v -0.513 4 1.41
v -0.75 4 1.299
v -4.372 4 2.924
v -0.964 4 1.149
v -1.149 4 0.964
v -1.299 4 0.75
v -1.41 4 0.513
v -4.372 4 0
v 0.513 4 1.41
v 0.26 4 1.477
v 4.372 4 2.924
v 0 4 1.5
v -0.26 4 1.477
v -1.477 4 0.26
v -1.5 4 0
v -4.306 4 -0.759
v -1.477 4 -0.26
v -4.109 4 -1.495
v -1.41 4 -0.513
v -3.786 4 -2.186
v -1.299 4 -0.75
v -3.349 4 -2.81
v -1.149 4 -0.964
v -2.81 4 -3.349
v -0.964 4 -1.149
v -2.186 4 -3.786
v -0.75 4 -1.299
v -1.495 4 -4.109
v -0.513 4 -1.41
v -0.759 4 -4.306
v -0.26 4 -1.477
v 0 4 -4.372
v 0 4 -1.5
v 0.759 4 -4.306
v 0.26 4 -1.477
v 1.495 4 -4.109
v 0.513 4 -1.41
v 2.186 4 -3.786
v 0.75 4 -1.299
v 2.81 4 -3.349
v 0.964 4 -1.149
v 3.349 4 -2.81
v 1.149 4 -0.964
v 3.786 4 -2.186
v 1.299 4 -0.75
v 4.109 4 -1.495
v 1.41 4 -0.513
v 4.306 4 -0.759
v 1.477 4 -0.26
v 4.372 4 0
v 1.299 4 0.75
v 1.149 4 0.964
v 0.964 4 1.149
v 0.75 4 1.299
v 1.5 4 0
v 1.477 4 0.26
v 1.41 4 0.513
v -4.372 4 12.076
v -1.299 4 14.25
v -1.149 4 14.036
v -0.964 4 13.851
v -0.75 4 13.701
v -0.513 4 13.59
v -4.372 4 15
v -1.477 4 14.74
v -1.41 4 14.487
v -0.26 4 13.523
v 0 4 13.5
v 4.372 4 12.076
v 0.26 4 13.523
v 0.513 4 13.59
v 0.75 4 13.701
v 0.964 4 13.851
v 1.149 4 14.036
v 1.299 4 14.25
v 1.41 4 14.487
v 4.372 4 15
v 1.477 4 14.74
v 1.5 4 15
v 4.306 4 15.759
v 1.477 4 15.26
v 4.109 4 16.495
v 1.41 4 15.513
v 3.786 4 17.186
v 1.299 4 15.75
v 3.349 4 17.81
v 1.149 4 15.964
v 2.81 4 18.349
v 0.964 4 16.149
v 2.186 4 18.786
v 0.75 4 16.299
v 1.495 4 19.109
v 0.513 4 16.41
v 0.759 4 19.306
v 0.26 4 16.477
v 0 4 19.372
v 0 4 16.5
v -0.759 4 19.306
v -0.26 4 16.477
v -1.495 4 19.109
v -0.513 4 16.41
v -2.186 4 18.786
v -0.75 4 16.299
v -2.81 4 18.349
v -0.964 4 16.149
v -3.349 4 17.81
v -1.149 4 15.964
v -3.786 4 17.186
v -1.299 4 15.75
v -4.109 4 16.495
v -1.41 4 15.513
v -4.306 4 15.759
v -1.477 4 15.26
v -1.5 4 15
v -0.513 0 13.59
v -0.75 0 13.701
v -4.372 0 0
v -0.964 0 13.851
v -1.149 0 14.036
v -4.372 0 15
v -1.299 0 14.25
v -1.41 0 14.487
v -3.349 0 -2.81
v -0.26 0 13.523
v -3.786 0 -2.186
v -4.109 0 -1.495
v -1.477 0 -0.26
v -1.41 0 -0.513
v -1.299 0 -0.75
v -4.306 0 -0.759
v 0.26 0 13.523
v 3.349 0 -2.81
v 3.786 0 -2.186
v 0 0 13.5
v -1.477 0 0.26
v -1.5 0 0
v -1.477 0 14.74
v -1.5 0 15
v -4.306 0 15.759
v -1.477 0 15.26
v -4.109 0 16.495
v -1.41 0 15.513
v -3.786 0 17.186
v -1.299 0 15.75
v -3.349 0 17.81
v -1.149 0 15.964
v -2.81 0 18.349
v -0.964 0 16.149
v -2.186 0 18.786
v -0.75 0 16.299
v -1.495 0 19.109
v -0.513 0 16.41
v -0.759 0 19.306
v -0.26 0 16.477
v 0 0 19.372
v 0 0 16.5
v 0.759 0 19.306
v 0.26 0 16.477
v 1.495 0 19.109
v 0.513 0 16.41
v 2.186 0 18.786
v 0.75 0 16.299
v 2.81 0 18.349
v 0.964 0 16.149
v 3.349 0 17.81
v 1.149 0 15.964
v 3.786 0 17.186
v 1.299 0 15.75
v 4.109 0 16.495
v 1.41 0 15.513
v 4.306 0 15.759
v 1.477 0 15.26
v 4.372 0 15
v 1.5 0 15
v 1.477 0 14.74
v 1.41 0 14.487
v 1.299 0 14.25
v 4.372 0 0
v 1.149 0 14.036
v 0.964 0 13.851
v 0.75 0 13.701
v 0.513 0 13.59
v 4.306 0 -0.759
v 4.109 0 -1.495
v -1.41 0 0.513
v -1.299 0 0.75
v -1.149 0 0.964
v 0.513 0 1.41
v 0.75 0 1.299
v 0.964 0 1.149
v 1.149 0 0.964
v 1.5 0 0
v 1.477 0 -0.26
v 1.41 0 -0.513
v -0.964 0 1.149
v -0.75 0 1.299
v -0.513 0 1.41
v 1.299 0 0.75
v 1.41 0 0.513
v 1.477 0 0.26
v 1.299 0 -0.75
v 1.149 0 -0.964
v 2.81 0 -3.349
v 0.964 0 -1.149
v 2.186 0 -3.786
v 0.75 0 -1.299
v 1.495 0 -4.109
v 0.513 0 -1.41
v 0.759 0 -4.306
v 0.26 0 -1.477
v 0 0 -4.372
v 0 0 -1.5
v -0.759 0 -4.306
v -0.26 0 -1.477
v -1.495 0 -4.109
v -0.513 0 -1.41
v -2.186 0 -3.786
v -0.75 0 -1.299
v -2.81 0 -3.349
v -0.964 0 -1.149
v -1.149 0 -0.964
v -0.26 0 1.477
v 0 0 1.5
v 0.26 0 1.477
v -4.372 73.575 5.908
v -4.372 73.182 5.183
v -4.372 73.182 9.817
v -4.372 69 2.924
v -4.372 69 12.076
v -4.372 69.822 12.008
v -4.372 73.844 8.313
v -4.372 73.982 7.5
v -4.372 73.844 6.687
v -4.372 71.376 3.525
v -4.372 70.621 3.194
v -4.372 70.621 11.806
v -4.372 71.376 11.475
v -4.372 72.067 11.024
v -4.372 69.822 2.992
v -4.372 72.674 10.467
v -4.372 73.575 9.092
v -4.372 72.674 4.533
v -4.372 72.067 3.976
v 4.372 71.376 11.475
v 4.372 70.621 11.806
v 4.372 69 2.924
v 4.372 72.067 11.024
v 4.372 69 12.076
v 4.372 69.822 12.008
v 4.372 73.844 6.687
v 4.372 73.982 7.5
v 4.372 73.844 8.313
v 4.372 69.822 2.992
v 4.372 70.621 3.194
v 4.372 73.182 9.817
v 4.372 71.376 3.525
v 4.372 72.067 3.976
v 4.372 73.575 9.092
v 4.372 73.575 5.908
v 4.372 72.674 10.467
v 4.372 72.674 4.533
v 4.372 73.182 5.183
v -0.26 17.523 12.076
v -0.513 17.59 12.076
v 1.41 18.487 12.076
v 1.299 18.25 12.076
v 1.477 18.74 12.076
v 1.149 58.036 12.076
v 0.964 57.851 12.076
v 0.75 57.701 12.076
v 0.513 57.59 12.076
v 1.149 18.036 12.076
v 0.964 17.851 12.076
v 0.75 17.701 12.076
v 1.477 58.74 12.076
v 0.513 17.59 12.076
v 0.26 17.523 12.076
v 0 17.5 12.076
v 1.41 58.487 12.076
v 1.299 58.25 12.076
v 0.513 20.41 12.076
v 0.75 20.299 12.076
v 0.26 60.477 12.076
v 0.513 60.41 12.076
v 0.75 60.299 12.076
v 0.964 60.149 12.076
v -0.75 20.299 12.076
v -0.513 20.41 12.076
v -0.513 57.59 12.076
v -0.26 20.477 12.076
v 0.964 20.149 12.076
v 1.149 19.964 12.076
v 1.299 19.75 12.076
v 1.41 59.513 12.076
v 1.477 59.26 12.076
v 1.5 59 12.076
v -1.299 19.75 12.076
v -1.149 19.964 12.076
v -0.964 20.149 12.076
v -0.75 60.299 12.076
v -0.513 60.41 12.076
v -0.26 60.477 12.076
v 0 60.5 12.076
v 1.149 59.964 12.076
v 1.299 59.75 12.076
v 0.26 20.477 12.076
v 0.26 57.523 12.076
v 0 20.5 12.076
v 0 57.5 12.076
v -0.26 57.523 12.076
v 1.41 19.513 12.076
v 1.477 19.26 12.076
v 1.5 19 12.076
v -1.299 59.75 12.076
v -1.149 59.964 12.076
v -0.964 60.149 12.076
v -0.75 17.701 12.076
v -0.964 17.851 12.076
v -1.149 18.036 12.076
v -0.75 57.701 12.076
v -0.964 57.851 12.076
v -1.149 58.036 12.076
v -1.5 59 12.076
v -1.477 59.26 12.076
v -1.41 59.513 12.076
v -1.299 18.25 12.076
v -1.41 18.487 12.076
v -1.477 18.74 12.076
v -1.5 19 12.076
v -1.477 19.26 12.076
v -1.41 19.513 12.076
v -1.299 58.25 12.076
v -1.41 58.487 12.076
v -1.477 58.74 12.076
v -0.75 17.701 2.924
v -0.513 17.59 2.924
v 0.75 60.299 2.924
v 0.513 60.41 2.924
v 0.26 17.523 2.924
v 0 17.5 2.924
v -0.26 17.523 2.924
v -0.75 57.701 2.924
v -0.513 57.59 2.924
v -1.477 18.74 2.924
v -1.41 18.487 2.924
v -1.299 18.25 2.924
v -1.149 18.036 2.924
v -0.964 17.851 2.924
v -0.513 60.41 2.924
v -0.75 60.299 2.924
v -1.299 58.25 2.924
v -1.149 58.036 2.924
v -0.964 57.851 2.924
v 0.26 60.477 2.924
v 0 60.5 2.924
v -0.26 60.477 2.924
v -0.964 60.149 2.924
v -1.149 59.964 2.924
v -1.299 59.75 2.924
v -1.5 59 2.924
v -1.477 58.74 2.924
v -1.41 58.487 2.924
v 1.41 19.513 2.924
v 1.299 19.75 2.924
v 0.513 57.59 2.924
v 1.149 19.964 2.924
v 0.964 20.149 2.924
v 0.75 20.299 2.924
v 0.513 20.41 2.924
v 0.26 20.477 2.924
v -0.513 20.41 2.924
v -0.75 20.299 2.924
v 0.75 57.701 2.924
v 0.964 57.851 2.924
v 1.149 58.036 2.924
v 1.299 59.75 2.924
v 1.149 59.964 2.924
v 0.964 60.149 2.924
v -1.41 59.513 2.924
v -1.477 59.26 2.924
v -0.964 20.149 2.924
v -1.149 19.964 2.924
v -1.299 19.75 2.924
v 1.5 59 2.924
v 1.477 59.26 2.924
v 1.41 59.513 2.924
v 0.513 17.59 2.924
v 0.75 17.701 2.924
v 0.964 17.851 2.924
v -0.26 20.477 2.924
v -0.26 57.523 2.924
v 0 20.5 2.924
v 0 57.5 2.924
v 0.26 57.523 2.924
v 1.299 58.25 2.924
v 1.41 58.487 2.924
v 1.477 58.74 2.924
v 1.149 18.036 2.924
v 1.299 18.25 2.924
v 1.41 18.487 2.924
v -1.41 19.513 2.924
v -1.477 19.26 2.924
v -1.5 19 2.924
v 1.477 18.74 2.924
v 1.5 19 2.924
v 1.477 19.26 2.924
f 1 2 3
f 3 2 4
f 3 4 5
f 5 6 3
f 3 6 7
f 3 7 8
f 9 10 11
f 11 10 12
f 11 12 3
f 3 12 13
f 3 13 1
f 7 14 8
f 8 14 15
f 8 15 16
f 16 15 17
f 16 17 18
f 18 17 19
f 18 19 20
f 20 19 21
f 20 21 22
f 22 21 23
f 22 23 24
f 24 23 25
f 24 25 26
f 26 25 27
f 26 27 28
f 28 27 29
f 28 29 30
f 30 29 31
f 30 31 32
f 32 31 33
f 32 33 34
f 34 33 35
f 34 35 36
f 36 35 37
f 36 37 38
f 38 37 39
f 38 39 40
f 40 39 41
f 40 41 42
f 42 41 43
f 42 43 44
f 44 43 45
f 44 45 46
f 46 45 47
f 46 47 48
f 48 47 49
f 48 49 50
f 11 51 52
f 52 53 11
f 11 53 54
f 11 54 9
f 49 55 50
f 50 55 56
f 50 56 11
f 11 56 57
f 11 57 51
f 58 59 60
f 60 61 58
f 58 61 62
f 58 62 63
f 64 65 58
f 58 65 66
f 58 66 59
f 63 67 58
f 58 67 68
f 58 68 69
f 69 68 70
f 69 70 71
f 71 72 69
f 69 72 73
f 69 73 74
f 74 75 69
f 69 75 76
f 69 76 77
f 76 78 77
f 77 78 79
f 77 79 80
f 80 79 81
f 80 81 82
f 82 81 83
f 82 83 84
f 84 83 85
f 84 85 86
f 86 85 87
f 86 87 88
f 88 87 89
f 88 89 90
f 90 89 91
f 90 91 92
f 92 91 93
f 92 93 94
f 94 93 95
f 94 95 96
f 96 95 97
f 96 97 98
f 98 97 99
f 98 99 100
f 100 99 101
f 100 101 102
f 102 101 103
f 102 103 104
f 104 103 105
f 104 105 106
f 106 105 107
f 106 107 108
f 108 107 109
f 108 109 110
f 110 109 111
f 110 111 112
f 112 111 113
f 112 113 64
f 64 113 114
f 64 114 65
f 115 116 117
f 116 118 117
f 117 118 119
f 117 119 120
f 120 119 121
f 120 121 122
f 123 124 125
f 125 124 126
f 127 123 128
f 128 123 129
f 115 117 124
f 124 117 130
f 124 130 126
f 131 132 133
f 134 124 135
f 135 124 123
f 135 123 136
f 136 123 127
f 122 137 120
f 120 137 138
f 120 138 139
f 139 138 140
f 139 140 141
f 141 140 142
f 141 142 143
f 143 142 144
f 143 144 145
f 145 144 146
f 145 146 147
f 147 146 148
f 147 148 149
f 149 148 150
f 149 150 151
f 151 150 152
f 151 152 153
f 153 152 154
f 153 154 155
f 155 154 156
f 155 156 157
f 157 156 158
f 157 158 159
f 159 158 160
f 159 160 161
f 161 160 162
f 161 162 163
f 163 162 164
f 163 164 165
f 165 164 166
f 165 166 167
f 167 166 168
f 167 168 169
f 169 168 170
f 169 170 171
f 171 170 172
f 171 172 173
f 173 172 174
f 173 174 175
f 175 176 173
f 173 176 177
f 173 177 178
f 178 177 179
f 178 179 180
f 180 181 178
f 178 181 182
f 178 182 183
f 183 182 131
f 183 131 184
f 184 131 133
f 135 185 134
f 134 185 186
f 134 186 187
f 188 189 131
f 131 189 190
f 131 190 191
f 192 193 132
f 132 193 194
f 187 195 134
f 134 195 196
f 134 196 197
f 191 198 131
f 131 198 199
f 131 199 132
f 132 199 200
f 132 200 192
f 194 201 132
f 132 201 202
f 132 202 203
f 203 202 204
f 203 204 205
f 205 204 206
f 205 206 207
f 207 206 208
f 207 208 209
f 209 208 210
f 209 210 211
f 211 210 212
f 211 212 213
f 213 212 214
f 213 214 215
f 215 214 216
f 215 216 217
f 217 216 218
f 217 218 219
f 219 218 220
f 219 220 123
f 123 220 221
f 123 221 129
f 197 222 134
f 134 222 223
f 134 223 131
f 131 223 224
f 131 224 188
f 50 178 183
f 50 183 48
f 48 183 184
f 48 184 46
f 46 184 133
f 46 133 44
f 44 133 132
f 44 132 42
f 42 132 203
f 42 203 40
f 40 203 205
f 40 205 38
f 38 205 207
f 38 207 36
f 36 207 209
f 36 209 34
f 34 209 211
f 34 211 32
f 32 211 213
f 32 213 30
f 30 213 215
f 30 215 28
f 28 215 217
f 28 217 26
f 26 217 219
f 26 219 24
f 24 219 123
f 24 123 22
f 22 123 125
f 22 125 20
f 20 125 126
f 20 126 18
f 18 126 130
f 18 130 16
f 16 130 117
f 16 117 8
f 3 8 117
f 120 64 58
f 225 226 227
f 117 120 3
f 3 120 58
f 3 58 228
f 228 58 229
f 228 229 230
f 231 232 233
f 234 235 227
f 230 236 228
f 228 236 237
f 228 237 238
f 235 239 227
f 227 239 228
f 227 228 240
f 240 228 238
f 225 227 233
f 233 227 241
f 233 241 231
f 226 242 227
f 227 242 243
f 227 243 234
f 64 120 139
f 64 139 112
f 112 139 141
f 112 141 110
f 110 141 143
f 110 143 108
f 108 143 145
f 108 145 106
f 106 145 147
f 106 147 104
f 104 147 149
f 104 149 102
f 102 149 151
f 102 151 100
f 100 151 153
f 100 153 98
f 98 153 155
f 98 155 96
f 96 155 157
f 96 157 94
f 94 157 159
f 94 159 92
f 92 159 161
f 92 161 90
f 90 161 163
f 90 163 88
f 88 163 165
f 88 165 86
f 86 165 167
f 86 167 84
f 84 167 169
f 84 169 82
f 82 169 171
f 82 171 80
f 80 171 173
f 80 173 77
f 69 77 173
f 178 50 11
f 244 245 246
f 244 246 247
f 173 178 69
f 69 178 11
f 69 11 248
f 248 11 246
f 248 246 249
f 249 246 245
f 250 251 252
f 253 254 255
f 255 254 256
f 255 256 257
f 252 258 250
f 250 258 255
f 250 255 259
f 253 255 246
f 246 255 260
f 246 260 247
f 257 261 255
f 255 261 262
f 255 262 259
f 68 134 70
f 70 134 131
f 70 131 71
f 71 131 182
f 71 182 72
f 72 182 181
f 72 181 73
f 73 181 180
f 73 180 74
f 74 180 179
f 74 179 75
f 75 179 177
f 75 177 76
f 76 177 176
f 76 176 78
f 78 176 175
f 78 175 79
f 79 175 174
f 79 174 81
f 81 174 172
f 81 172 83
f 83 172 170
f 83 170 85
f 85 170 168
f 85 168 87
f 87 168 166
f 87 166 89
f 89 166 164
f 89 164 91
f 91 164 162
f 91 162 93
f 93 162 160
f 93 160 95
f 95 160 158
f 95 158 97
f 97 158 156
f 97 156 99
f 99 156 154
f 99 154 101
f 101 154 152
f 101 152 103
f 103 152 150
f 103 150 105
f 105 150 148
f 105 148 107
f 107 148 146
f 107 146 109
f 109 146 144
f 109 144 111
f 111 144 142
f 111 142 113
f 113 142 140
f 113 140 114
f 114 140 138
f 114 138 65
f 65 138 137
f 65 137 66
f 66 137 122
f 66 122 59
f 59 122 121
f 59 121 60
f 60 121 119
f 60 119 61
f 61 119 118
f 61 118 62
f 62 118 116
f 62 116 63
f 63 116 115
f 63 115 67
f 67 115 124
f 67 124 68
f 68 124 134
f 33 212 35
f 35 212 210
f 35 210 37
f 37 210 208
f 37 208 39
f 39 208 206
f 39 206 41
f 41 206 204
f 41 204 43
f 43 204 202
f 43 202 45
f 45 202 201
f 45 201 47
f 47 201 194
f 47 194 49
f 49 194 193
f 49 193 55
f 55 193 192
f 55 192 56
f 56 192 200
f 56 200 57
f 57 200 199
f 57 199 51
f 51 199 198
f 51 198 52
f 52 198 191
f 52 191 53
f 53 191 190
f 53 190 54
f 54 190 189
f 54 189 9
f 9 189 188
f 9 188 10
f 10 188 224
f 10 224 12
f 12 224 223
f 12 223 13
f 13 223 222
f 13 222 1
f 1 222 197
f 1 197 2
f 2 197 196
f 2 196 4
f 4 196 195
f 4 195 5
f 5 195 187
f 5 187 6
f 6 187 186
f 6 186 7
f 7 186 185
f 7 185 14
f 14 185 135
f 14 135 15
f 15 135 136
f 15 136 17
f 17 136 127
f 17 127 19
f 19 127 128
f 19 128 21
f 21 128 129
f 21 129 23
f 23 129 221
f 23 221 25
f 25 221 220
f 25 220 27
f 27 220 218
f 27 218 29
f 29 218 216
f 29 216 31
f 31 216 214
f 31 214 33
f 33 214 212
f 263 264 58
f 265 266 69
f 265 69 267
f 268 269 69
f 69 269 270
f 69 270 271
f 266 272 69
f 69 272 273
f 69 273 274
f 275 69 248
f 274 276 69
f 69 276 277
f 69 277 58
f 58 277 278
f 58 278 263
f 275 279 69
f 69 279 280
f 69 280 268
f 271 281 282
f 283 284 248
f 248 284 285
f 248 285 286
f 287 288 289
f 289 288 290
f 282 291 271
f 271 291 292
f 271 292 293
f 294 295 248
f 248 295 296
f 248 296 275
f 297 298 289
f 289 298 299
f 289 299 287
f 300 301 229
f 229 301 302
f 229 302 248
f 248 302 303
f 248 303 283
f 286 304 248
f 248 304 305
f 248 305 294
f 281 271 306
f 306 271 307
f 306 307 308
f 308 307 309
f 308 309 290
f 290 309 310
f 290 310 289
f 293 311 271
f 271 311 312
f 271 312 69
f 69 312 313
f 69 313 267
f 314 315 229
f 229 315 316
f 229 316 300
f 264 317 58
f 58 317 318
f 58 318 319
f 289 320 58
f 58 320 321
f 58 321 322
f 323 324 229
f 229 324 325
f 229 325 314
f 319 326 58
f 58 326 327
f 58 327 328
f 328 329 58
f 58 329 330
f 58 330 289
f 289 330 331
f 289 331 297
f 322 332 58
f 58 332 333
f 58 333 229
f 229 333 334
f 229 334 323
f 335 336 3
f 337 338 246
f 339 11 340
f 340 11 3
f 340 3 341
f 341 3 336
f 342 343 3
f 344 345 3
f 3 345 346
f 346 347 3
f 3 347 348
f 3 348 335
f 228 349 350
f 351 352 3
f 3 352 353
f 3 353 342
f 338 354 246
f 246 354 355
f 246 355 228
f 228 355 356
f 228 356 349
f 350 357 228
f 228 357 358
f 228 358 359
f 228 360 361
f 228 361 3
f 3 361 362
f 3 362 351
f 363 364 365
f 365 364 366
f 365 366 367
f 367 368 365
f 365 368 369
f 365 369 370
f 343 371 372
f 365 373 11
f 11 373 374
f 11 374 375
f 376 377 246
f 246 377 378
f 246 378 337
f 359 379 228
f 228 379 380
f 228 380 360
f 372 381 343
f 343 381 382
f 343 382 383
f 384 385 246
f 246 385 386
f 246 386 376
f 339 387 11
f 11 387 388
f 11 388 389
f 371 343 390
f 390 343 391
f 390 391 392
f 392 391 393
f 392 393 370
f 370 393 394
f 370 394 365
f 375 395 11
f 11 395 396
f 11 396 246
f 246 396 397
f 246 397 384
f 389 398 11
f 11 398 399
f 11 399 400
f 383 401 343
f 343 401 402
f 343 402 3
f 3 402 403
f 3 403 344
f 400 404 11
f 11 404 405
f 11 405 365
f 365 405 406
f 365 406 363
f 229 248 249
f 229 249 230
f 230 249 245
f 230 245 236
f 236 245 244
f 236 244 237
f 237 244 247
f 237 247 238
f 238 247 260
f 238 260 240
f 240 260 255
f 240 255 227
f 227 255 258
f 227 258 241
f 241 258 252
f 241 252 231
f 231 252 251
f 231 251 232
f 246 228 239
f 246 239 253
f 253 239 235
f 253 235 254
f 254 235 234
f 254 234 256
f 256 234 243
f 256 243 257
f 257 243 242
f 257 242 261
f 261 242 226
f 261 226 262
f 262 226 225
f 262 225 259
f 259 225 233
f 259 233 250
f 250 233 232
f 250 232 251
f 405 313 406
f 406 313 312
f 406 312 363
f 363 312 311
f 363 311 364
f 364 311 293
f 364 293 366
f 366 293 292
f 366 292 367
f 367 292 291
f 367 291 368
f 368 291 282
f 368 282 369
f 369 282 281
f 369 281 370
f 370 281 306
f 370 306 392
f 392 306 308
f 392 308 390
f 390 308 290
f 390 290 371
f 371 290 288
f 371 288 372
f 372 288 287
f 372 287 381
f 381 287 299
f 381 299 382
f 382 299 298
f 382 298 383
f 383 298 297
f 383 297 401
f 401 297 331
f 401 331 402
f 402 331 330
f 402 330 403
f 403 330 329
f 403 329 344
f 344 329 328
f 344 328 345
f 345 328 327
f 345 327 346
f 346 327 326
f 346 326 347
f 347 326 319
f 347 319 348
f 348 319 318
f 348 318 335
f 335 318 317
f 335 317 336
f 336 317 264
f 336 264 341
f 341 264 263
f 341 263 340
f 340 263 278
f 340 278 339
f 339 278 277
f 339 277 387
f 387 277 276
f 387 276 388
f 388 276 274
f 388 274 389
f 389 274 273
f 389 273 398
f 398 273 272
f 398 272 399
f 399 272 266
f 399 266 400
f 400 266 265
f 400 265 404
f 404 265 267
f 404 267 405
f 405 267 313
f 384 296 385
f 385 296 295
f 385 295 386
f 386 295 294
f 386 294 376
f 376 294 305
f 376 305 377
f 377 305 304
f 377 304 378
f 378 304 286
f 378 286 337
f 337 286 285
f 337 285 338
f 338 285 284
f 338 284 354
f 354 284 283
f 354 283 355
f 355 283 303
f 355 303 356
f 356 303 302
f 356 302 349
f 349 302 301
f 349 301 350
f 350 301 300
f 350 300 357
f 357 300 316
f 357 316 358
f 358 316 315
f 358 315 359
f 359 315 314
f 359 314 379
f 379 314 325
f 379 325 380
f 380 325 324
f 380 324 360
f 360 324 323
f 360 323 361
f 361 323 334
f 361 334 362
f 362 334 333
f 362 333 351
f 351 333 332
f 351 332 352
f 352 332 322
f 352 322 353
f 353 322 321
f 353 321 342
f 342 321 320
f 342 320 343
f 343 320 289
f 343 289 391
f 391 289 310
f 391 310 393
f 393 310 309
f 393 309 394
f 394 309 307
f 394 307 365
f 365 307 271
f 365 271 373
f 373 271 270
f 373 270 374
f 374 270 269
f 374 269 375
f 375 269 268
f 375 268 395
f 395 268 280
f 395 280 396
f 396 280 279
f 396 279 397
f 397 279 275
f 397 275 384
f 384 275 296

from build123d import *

# Parameters (mm, degrees)
SKETCH1_R           = 1.5
BOSS_EXTRUDE1_DEPTH = 4
SKETCH2_W           = 8.74452312
SKETCH2_H           = 9.151316648
BOSS_EXTRUDE2_DEPTH = 70
FILLET3_R           = 5
SKETCH6_R           = 1.5
CUT_EXTRUDE2_DEPTH  = 55


with BuildPart() as part:
    # Sketch1 → Boss-Extrude1 (new body)
    with BuildSketch(Plane(origin=(0, 0, 0), x_dir=(1, 0, 0), z_dir=(0, 1, 0))):
        with BuildLine():
            Line((4.37226156, 0), (4.37226156, -15))
            ThreePointArc((4.37226156, -15), (0, -19.37226156), (-4.37226156, -15))
            Line((-4.37226156, -15), (-4.37226156, 0))
            ThreePointArc((-4.37226156, 0), (0, 4.37226156), (4.37226156, 0))
        make_face()
        with Locations(Location((0, 0, 0), (0, 0, 270))):
            Circle(SKETCH1_R, mode=Mode.SUBTRACT)
        with Locations(Location((0, -15, 0), (0, 0, 270))):
            Circle(SKETCH1_R, mode=Mode.SUBTRACT)
    extrude(amount=BOSS_EXTRUDE1_DEPTH)

    # Sketch2 → Boss-Extrude2 (add)
    with BuildSketch(Plane(origin=(0, 4, 0), x_dir=(1, 0, 0), z_dir=(0, 1, 0))):
        with Locations((0, -7.5)):
            Rectangle(SKETCH2_W, SKETCH2_H)
    extrude(amount=BOSS_EXTRUDE2_DEPTH)

    # Fillet3
    # the kernel refuses this fillet: 5 mm, written as the material it takes off along each edge
    with BuildSketch(Plane(origin=(-16.87226156, 74, 2.924341676), x_dir=(0, -1, 0), z_dir=(1, 0, 0)), Plane(origin=(16.87226156, 74, 12.075658324), x_dir=(0, -1, 0), z_dir=(-1, 0, 0))) as fillet3_piece_1:
        with BuildLine():
            CenterArc((FILLET3_R, -FILLET3_R), FILLET3_R, 90, 90)
            Line((0, -FILLET3_R), (0, 0))
            Line((0, 0), (FILLET3_R, 0))
        make_face()
    extrude(amount=33.74452312, mode=Mode.SUBTRACT)

    # Sketch6 → Cut-Extrude2 (cut)
    with BuildSketch(Plane.XY.offset(12.075658324)):
        with Locations((0, 59)):
            Circle(SKETCH6_R)
        with Locations(Location((0, 19, 0), (0, 0, 180))):
            Circle(SKETCH6_R)
    extrude(amount=-CUT_EXTRUDE2_DEPTH, mode=Mode.SUBTRACT)


solid = part.part
